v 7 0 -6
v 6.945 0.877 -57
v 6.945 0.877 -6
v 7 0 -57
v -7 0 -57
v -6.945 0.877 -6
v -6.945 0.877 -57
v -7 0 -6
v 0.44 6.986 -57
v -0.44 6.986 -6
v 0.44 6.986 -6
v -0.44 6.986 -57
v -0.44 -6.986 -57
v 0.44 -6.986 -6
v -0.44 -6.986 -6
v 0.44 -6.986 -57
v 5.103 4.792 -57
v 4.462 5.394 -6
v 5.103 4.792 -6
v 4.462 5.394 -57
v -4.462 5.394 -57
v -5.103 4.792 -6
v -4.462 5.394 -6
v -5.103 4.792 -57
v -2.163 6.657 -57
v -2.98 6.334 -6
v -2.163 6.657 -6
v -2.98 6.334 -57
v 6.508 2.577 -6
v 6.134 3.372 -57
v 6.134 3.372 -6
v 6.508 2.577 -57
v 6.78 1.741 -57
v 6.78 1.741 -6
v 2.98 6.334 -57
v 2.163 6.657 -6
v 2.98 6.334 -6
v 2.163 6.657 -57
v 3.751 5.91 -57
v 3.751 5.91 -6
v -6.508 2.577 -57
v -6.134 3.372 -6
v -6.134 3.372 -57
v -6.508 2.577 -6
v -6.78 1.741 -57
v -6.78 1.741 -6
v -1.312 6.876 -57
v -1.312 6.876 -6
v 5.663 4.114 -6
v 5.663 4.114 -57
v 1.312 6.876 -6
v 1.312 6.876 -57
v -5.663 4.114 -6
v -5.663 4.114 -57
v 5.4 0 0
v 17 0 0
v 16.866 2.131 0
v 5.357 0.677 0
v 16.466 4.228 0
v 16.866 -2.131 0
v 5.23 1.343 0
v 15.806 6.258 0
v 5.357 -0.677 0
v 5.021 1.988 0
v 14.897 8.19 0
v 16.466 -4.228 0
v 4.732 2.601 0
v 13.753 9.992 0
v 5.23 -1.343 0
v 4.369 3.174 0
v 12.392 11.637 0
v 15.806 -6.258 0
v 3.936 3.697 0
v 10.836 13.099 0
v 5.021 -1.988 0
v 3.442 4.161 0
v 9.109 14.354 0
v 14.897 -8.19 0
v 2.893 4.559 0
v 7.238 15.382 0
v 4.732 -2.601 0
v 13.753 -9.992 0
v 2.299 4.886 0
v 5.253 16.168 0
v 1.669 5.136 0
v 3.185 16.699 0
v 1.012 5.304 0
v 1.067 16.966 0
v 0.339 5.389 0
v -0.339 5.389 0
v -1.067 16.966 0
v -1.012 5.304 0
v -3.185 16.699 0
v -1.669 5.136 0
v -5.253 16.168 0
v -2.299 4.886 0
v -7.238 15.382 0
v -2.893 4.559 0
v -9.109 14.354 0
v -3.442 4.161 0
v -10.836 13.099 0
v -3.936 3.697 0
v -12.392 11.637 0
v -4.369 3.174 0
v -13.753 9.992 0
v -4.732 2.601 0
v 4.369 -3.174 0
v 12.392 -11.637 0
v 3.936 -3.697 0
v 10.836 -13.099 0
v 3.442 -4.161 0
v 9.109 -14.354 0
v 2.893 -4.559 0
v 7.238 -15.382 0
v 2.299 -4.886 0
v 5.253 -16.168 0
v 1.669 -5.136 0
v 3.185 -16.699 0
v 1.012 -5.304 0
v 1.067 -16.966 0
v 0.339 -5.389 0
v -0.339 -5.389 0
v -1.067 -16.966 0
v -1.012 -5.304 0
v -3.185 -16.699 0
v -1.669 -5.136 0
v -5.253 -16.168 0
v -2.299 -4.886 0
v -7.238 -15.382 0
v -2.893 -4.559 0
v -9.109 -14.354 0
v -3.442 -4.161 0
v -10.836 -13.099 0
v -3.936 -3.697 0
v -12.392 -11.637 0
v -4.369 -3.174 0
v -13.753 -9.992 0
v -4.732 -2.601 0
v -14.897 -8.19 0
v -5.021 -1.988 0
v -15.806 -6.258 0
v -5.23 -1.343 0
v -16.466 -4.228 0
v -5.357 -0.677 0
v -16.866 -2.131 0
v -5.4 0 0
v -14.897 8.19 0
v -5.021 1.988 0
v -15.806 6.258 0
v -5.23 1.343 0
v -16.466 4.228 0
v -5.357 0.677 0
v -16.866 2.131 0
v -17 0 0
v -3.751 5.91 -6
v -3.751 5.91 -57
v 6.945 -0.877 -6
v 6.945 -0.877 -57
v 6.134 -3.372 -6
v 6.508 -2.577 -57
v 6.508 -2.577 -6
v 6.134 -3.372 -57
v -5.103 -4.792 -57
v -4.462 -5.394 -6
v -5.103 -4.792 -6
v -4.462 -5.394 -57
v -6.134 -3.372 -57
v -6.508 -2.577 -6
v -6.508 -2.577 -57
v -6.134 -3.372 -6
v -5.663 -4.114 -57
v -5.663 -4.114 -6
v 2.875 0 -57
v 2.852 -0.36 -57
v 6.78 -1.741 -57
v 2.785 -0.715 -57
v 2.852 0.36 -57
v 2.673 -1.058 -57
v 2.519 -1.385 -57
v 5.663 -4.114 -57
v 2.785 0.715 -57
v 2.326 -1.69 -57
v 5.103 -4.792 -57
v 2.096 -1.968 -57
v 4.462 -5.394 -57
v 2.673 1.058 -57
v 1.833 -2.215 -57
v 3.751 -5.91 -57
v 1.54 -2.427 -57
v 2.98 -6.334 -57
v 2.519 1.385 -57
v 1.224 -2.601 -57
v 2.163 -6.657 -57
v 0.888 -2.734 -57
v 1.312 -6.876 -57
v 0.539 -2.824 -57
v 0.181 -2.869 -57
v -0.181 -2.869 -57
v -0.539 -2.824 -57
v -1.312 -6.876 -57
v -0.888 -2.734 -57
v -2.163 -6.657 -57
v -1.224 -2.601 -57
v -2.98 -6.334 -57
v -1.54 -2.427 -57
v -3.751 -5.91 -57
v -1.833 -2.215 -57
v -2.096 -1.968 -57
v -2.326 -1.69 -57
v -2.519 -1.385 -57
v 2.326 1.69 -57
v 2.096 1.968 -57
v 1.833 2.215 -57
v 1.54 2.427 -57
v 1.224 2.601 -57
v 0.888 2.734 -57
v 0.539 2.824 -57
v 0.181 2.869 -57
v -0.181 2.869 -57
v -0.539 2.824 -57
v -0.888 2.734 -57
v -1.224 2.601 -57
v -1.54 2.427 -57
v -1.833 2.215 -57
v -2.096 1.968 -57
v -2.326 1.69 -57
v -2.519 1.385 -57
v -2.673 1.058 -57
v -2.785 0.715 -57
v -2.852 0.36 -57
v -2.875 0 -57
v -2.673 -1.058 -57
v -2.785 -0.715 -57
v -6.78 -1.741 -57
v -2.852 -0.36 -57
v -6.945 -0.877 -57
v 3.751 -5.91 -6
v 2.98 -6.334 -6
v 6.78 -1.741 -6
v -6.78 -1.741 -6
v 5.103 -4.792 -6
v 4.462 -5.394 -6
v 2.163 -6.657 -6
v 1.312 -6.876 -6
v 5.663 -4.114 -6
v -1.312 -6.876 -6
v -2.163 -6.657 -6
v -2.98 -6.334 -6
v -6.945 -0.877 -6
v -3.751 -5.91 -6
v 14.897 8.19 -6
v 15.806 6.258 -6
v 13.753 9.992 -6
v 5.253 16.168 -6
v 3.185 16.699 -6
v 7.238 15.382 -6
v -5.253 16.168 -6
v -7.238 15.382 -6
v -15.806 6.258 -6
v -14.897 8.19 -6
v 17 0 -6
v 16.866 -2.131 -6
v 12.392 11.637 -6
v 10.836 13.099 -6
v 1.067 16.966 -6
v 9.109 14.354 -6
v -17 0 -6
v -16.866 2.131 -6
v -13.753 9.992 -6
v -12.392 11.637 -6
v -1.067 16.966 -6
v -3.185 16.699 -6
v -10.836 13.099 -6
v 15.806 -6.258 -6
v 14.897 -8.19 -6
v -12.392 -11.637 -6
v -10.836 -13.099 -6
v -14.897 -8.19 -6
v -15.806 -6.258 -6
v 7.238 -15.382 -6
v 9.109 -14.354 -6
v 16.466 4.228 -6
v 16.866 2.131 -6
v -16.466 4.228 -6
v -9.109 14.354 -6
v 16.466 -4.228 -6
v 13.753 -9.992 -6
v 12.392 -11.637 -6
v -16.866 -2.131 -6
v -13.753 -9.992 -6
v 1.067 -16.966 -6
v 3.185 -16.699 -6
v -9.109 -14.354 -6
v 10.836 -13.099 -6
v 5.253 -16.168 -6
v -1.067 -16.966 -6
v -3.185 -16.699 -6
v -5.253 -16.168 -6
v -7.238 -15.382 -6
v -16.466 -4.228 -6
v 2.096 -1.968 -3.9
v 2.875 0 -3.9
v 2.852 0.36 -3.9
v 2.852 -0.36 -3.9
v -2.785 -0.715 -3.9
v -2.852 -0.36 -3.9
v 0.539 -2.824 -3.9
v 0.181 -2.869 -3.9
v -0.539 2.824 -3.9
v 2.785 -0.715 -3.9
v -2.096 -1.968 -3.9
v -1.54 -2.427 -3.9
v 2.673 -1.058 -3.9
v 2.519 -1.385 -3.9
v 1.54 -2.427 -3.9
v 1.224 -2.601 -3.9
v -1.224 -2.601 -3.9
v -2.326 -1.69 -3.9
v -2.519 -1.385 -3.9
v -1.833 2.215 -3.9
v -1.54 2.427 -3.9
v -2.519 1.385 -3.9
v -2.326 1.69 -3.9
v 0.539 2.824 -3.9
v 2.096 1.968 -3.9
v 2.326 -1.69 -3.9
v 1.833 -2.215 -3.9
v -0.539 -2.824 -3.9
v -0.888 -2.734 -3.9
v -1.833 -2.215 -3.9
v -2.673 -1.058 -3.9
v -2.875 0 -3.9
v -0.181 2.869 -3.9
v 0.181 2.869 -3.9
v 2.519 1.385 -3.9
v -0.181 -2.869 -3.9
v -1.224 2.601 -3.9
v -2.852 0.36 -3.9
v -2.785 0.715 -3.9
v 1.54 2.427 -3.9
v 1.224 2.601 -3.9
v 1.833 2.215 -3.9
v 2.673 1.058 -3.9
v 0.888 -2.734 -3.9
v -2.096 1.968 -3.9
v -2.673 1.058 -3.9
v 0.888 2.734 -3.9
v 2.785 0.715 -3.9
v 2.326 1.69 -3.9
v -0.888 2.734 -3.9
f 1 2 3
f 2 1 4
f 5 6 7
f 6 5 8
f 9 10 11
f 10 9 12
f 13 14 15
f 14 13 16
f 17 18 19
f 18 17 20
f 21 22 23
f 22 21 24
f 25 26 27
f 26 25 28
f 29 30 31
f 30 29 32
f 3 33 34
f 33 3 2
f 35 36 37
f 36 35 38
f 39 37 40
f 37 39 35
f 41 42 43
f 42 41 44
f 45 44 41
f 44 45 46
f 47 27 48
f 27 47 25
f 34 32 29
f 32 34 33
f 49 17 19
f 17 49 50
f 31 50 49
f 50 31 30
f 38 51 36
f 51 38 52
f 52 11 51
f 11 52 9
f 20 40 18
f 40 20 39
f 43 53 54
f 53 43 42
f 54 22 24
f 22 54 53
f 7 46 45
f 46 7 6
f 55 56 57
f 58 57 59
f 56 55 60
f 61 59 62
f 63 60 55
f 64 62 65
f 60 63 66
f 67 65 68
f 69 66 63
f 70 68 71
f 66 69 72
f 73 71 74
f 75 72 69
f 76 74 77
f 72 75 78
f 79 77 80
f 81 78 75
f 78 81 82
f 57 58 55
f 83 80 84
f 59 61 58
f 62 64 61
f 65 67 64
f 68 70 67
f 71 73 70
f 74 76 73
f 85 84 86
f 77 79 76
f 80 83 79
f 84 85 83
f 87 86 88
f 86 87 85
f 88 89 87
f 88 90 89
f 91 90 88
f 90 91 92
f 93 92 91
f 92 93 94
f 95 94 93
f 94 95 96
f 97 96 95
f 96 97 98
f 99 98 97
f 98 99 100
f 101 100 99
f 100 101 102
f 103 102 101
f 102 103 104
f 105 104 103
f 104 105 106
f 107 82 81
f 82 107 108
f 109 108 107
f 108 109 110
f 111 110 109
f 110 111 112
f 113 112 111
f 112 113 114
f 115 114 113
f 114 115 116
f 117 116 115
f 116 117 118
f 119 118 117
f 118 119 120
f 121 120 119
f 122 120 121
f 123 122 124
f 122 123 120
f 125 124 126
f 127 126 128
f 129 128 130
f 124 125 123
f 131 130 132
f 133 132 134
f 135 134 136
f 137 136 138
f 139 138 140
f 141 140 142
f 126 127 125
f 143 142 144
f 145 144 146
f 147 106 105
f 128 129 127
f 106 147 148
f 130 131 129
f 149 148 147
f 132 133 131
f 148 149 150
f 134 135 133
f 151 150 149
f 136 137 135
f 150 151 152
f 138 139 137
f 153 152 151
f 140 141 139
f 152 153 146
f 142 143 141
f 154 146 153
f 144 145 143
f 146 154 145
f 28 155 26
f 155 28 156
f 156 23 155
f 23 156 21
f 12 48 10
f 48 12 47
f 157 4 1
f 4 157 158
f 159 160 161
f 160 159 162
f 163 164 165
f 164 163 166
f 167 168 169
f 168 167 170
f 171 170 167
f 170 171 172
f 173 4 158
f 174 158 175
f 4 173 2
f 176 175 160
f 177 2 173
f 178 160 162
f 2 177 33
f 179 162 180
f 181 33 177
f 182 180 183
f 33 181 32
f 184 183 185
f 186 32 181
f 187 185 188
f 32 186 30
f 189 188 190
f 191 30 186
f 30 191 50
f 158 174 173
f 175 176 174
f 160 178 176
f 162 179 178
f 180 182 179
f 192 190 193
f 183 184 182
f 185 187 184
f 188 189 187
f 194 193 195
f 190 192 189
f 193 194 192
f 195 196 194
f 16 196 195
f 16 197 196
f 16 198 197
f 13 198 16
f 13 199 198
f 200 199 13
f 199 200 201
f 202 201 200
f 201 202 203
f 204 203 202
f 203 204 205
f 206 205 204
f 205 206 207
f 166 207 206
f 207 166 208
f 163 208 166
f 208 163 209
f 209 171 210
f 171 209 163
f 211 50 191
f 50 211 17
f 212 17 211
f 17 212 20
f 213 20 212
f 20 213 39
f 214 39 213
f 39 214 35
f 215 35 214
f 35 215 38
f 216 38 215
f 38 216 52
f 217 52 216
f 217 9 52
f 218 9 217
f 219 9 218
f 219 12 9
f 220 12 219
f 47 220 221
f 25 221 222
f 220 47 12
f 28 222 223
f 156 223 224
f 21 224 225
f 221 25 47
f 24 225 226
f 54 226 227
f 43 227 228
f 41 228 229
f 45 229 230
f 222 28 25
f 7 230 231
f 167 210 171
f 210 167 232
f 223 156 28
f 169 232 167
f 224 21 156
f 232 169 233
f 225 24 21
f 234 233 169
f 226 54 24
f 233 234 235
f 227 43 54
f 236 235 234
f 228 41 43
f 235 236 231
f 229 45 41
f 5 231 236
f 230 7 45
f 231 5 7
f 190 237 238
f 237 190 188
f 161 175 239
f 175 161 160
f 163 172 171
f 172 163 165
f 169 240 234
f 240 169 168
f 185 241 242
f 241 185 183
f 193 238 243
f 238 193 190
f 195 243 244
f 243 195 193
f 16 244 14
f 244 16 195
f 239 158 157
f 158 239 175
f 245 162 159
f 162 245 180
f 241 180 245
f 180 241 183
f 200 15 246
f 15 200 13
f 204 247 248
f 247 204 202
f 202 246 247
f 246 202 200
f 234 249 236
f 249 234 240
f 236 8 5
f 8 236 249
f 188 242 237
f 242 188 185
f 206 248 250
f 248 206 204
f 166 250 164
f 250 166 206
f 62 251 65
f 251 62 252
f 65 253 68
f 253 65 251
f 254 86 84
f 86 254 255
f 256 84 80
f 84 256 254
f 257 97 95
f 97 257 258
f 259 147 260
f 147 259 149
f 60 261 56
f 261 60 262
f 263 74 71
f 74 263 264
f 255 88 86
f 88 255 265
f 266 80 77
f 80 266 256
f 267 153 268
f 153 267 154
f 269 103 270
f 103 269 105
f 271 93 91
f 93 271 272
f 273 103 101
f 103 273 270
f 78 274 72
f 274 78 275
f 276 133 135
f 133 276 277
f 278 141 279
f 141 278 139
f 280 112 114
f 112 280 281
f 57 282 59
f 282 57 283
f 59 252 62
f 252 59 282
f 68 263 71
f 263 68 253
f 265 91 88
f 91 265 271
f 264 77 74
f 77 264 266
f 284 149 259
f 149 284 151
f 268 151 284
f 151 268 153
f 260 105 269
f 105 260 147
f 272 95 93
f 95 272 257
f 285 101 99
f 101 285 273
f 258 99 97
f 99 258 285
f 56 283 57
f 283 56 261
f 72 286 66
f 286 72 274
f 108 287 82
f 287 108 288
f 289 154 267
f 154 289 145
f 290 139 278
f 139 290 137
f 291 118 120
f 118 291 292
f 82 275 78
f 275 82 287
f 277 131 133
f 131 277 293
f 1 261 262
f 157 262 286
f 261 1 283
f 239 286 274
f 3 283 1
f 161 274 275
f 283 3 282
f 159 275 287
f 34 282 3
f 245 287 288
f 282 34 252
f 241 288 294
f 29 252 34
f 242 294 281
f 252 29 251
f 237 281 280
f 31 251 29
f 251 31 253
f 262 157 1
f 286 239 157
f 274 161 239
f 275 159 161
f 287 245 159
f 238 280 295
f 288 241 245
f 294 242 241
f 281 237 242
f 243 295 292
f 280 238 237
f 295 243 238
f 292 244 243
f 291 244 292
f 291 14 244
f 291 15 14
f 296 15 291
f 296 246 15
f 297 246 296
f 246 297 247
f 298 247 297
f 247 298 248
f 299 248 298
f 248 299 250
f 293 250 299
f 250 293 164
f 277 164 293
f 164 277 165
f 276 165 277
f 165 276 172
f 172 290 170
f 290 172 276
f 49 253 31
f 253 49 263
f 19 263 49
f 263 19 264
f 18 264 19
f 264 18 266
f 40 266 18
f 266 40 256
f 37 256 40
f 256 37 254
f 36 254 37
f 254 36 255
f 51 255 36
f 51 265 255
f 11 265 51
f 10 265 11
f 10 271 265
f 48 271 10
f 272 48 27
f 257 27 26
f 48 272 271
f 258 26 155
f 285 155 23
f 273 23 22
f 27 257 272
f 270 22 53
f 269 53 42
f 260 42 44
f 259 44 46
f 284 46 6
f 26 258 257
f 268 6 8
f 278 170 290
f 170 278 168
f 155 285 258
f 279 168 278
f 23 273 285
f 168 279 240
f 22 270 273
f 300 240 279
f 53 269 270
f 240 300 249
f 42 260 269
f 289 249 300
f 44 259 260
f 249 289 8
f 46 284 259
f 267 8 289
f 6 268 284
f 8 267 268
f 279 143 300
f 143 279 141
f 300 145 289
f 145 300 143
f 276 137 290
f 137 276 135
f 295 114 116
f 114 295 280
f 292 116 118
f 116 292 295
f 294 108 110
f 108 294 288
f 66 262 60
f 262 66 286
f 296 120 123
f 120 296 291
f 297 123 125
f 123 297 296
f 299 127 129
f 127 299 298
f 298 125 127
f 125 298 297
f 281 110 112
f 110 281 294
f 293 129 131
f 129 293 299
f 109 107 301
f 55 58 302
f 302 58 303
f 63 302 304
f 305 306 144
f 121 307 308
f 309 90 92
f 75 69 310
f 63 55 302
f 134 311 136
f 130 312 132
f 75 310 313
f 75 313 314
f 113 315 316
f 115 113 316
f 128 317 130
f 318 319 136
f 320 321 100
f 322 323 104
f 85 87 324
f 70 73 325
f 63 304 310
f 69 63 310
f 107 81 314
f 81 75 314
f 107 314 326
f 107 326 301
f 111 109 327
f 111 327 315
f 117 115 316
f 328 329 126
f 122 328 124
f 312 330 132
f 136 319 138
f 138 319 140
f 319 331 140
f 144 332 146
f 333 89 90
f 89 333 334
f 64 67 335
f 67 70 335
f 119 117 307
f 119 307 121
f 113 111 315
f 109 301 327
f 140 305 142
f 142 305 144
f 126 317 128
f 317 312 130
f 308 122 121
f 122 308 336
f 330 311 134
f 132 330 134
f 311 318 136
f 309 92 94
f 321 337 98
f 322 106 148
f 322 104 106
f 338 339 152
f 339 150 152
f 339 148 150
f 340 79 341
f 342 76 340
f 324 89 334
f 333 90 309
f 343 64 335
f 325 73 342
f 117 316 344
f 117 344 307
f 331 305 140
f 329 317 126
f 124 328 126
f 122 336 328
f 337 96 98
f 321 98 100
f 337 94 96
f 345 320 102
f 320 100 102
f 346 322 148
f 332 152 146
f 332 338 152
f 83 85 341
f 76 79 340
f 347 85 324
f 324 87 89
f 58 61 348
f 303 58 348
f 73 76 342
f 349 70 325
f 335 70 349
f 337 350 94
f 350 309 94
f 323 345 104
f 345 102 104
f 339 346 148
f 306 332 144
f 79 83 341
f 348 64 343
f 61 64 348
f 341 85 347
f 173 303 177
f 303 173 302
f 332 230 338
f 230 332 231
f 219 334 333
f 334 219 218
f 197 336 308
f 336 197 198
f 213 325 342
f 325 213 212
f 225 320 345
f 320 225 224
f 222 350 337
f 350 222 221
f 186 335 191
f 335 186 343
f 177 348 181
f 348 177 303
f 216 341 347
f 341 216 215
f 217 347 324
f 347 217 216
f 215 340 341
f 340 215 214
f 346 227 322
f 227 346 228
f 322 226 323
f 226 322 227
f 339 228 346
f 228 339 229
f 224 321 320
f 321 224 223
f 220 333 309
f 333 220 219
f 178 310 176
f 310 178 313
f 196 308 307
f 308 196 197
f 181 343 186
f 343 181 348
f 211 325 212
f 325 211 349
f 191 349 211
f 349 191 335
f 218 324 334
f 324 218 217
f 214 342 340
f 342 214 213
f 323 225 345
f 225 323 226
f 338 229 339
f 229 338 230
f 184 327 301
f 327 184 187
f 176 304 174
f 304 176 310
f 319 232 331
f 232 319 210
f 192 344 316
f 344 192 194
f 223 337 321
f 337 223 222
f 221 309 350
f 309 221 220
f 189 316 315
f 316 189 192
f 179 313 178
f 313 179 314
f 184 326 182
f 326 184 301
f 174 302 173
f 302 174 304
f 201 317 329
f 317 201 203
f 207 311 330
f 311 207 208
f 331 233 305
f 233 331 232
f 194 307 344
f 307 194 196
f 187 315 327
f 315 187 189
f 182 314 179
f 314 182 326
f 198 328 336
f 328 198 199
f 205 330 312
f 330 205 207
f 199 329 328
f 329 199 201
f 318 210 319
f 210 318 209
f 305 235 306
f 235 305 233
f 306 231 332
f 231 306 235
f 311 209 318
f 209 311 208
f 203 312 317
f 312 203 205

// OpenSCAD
$fn = 50;


difference() {
	union() {
		translate(v = [0, 0, -57.0000000000]) {
			cylinder(h = 57, r = 7.0000000000);
		}
		translate(v = [0, 0, -6.0000000000]) {
			cylinder(h = 6, r = 17.0000000000);
		}
	}
	union() {
		translate(v = [0, 0, 0]) {
			rotate(a = [0, 0, 0]) {
				difference() {
					union() {
						#translate(v = [0, 0, -57.0000000000]) {
							cylinder(h = 57, r = 2.6000000000);
						}
						#translate(v = [0, 0, -3.9000000000]) {
							cylinder(h = 3.9000000000, r = 7.0000000000, r1 = 2.8750000000, r2 = 5.4000000000);
						}
						#translate(v = [0, 0, -57.0000000000]) {
							cylinder(h = 57, r = 2.8750000000);
						}
						#translate(v = [0, 0, -57.0000000000]) {
							cylinder(h = 57, r = 2.6000000000);
						}
					}
					union();
				}
			}
		}
	}
}
